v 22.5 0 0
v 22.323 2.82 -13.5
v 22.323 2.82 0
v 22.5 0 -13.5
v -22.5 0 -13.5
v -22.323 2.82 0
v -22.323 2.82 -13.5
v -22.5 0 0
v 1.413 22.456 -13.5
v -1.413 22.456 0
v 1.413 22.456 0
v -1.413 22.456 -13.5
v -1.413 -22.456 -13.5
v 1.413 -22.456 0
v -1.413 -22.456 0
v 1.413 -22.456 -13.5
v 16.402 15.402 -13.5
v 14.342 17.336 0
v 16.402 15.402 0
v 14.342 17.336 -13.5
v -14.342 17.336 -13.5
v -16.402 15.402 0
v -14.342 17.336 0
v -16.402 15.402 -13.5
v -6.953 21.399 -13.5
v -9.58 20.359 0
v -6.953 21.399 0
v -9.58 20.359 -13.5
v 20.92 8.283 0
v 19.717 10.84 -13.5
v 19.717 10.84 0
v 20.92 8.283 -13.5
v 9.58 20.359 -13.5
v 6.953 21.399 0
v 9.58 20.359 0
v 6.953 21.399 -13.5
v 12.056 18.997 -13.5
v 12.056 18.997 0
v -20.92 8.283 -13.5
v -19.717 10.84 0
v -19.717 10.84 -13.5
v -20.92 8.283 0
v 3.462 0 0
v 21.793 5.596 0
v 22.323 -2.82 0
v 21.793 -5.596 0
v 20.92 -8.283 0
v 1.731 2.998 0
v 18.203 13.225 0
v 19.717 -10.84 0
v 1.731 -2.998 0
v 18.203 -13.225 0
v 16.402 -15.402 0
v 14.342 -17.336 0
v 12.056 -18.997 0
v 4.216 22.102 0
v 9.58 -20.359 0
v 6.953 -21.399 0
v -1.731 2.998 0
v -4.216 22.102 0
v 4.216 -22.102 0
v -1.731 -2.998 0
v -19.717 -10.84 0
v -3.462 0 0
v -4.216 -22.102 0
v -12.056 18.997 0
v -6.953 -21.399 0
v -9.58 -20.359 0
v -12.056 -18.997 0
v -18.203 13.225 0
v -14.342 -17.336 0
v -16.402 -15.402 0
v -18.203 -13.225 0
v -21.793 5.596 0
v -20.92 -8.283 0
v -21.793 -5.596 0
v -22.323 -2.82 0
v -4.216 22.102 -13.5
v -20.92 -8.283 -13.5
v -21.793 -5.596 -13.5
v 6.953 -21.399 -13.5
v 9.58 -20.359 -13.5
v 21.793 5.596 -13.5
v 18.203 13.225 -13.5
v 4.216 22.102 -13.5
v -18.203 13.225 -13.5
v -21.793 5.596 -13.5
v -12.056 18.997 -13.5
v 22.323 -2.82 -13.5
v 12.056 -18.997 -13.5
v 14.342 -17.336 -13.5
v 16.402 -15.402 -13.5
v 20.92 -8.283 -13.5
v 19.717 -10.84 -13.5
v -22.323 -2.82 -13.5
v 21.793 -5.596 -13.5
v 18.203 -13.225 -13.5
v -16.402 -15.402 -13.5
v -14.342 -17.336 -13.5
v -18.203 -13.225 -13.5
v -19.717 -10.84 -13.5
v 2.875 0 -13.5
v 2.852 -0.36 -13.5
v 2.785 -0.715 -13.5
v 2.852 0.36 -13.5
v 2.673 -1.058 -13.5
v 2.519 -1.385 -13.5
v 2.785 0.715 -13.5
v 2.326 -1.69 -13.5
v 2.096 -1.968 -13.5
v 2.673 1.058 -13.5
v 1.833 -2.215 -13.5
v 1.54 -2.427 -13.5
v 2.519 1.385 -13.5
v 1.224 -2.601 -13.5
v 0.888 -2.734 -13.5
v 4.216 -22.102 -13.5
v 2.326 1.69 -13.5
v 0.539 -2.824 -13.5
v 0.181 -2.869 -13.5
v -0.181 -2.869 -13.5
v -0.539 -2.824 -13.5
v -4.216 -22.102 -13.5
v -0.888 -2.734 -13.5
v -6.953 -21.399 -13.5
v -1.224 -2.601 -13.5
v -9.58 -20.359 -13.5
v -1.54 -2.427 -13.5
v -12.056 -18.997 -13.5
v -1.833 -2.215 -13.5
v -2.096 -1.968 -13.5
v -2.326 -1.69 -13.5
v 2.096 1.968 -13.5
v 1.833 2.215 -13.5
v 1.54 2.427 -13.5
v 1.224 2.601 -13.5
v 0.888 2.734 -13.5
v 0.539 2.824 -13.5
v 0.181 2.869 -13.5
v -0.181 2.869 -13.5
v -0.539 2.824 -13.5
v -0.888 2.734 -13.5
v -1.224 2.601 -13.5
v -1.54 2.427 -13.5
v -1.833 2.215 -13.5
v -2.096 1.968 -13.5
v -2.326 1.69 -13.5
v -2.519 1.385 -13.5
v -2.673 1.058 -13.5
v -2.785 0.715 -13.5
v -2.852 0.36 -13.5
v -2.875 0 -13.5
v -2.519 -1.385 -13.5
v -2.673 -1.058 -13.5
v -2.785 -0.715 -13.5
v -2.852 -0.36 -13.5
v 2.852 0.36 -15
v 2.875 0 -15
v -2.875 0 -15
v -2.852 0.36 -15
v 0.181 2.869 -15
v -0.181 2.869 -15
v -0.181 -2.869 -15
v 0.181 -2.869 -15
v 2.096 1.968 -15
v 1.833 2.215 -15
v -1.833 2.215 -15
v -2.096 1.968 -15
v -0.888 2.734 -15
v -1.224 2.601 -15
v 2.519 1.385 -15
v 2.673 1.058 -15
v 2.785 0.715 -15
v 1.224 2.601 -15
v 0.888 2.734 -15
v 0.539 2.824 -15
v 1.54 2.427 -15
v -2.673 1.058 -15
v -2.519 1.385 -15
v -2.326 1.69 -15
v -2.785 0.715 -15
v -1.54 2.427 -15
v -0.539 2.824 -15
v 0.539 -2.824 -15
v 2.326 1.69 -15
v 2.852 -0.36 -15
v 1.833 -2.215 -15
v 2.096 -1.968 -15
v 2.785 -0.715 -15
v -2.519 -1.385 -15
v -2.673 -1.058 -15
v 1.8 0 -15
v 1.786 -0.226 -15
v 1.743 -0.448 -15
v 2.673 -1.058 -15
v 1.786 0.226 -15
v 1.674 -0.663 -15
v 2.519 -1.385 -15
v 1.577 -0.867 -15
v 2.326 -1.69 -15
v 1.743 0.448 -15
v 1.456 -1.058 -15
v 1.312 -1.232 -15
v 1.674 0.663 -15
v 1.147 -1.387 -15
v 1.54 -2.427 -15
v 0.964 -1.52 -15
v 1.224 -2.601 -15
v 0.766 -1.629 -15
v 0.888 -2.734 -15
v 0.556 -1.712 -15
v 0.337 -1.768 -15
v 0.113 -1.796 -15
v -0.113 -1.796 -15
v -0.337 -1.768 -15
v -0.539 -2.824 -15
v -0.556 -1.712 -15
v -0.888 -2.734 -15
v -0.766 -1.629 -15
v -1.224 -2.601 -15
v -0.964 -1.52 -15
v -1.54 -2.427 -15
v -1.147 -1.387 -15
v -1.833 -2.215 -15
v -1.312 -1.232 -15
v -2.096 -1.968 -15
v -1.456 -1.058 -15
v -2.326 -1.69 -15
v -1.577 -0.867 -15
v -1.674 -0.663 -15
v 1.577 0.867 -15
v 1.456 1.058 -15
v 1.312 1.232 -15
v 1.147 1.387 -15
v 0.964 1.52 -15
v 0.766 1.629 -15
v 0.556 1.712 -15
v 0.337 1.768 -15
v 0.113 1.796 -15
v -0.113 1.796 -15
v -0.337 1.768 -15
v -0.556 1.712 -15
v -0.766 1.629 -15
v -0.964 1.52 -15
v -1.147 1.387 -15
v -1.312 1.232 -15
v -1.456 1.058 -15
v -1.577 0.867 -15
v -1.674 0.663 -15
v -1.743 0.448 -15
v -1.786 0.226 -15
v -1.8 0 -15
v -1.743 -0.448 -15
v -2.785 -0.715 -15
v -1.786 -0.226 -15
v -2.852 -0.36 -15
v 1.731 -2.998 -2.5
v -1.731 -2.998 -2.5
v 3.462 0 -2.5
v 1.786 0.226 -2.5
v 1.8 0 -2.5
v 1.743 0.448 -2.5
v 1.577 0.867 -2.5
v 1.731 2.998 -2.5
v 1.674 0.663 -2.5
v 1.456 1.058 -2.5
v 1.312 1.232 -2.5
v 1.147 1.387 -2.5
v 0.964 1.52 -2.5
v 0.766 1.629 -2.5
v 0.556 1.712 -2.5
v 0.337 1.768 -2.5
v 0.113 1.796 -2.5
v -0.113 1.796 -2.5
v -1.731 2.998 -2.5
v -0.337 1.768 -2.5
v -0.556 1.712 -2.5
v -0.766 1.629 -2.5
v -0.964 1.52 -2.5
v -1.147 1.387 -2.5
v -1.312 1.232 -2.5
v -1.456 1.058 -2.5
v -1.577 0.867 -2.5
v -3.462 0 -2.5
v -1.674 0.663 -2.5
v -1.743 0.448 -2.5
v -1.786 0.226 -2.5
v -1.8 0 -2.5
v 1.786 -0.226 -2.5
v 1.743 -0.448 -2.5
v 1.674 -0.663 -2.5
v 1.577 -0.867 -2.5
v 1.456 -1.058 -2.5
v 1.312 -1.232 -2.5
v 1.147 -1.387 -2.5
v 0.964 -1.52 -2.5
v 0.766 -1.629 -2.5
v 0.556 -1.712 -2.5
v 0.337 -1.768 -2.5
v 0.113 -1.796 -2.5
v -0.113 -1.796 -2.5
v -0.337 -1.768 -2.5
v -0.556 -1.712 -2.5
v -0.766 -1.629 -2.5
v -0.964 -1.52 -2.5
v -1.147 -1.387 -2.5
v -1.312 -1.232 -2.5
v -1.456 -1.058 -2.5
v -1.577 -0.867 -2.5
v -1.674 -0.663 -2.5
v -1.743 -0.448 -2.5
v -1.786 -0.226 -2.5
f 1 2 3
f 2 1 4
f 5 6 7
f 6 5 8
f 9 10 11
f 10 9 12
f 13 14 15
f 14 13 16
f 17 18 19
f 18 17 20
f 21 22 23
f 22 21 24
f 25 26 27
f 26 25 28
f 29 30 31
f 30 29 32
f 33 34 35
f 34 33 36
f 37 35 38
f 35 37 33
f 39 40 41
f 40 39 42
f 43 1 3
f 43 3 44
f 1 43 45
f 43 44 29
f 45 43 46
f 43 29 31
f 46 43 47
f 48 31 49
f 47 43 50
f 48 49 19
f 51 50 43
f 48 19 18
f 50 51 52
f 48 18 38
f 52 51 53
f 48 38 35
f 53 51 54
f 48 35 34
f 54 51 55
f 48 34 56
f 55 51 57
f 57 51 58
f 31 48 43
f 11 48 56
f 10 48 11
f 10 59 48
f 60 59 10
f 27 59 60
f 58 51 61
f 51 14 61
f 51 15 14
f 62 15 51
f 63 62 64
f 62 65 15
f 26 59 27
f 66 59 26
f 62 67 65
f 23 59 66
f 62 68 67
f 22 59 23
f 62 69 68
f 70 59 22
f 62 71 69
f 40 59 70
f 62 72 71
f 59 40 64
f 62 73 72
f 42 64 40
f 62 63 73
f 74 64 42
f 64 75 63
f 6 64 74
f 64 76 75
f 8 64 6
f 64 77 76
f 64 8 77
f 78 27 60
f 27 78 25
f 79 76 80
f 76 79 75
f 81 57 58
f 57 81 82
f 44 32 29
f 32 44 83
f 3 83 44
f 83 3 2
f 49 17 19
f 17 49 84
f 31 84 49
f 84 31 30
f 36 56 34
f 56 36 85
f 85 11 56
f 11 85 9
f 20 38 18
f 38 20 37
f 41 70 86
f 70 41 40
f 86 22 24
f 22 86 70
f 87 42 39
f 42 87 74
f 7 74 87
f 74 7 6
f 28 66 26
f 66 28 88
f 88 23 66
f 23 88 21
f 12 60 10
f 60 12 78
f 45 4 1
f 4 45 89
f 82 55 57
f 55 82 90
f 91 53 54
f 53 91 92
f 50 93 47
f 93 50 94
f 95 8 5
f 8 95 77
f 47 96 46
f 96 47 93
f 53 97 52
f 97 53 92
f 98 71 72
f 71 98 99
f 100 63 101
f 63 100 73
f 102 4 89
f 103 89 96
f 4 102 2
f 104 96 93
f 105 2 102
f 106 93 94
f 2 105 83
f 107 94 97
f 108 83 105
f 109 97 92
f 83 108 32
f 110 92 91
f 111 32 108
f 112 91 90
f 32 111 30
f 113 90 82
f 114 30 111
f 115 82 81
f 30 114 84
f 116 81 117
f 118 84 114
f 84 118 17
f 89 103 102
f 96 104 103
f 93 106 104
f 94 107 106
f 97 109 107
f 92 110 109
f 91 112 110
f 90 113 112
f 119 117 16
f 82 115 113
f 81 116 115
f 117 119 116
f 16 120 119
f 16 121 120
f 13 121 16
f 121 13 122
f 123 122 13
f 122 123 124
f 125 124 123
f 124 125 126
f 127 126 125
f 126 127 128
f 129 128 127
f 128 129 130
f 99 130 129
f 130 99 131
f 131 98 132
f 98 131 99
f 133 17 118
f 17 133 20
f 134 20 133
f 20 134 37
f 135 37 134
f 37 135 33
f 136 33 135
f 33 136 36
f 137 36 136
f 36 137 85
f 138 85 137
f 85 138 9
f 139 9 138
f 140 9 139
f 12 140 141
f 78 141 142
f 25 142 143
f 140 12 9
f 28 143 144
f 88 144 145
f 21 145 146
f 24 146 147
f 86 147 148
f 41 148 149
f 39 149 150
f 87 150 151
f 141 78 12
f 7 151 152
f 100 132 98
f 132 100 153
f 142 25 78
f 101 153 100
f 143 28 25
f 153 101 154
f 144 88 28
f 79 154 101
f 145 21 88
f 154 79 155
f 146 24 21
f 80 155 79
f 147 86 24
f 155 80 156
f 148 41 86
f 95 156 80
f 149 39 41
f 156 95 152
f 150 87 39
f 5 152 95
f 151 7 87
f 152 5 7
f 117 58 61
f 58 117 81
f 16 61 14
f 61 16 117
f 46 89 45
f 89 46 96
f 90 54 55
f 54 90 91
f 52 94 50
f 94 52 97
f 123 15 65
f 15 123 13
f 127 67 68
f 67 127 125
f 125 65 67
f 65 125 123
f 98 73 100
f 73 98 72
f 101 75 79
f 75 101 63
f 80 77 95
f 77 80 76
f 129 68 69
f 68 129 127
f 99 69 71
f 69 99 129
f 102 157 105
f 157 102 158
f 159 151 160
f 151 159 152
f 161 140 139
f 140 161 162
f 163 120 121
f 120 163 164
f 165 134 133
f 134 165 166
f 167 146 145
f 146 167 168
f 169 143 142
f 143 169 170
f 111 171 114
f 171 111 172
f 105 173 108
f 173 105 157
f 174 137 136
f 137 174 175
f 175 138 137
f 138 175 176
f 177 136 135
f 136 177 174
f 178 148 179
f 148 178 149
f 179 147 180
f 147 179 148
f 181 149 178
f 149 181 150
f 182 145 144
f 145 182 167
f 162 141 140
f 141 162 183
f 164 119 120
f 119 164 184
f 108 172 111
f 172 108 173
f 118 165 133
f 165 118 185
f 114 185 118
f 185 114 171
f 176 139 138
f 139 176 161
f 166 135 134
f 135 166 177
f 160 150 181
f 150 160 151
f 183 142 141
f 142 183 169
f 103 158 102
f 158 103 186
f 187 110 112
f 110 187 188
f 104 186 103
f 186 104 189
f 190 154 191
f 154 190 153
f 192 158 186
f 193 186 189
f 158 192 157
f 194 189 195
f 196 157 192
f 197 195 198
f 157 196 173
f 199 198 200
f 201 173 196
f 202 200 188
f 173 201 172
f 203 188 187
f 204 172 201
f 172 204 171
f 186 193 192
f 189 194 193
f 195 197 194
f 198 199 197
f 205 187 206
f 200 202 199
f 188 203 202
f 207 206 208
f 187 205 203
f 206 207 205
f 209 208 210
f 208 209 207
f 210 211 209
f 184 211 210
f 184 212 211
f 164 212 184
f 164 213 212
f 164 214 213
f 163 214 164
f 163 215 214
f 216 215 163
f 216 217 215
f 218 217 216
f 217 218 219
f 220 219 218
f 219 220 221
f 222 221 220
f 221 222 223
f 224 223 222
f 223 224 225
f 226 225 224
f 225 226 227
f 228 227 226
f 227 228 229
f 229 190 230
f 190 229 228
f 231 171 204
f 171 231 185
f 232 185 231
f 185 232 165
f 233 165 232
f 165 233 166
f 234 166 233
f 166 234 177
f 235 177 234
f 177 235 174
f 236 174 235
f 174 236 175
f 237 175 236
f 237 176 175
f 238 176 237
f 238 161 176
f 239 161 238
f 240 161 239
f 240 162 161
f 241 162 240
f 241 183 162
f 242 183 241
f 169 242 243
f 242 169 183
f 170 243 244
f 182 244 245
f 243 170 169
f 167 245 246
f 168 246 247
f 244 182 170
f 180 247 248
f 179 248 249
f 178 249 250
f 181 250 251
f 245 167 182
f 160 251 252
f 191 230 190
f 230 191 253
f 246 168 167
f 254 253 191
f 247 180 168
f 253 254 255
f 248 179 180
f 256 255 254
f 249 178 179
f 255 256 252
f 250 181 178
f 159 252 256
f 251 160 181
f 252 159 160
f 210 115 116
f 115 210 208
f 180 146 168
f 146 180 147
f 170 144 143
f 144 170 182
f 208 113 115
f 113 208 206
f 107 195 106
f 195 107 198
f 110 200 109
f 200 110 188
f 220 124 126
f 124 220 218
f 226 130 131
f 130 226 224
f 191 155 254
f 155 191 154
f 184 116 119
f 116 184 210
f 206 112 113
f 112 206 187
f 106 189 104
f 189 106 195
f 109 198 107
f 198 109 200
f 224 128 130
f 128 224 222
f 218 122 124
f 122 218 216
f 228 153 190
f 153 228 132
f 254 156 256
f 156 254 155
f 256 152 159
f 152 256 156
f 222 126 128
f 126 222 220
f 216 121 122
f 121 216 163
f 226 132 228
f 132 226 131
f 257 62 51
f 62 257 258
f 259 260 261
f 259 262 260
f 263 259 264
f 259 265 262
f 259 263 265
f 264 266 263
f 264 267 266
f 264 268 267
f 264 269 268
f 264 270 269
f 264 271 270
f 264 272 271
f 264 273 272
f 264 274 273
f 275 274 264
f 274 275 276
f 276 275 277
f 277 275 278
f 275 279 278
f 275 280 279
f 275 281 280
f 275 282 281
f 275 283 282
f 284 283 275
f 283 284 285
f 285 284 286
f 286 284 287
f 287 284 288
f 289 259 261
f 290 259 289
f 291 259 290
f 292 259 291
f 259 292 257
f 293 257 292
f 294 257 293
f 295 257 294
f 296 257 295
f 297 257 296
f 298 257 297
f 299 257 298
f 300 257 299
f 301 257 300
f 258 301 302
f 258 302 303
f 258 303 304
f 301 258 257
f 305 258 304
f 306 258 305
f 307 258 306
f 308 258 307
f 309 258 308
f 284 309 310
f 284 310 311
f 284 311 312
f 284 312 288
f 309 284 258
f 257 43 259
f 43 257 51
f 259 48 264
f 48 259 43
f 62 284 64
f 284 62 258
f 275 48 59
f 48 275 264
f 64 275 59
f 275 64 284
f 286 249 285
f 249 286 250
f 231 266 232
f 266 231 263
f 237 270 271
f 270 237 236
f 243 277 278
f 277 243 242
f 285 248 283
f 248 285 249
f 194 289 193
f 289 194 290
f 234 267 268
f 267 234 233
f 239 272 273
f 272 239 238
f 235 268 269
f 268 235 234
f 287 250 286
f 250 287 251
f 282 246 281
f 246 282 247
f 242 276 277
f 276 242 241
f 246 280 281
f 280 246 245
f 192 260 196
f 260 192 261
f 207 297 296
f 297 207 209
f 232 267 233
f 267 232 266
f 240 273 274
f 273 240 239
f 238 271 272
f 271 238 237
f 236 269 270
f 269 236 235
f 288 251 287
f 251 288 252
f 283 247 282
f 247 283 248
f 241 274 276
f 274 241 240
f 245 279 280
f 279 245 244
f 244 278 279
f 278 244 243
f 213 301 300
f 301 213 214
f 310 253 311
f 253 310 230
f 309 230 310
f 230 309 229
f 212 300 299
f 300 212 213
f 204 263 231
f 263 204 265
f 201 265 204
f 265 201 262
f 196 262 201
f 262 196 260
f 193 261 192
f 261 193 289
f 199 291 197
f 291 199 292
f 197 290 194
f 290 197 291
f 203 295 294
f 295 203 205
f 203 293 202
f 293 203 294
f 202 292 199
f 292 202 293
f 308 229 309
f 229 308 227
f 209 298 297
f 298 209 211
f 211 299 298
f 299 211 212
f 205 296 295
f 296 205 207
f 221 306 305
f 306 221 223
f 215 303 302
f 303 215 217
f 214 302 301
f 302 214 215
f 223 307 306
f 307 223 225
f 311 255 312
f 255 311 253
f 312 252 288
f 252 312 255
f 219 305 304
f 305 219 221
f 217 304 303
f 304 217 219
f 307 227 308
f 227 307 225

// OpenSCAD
$fn = 50;


difference() {
	union() {
		translate(v = [0, 0, -13.5000000000]) {
			cylinder(h = 13.5000000000, r = 22.5000000000);
		}
		translate(v = [0, 0, -15.0000000000]) {
			cylinder(h = 15, r = 2.8750000000);
		}
	}
	union() {
		translate(v = [0, 0, 0]) {
			rotate(a = [0, 0, 0]) {
				difference() {
					union() {
						translate(v = [0, 0, -2.5000000000]) {
							linear_extrude(height = 2.5000000000) {
								polygon(points = [[3.4620000000, 0.0000000000], [1.7310000000, 2.9981799479], [-1.7310000000, 2.9981799479], [-3.4620000000, 0.0000000000], [-1.7310000000, -2.9981799479], [1.7310000000, -2.9981799479]]);
							}
						}
					}
					union();
				}
			}
		}
		#translate(v = [0, 0, -100.0000000000]) {
			cylinder(h = 200, r = 1.8000000000);
		}
	}
}
